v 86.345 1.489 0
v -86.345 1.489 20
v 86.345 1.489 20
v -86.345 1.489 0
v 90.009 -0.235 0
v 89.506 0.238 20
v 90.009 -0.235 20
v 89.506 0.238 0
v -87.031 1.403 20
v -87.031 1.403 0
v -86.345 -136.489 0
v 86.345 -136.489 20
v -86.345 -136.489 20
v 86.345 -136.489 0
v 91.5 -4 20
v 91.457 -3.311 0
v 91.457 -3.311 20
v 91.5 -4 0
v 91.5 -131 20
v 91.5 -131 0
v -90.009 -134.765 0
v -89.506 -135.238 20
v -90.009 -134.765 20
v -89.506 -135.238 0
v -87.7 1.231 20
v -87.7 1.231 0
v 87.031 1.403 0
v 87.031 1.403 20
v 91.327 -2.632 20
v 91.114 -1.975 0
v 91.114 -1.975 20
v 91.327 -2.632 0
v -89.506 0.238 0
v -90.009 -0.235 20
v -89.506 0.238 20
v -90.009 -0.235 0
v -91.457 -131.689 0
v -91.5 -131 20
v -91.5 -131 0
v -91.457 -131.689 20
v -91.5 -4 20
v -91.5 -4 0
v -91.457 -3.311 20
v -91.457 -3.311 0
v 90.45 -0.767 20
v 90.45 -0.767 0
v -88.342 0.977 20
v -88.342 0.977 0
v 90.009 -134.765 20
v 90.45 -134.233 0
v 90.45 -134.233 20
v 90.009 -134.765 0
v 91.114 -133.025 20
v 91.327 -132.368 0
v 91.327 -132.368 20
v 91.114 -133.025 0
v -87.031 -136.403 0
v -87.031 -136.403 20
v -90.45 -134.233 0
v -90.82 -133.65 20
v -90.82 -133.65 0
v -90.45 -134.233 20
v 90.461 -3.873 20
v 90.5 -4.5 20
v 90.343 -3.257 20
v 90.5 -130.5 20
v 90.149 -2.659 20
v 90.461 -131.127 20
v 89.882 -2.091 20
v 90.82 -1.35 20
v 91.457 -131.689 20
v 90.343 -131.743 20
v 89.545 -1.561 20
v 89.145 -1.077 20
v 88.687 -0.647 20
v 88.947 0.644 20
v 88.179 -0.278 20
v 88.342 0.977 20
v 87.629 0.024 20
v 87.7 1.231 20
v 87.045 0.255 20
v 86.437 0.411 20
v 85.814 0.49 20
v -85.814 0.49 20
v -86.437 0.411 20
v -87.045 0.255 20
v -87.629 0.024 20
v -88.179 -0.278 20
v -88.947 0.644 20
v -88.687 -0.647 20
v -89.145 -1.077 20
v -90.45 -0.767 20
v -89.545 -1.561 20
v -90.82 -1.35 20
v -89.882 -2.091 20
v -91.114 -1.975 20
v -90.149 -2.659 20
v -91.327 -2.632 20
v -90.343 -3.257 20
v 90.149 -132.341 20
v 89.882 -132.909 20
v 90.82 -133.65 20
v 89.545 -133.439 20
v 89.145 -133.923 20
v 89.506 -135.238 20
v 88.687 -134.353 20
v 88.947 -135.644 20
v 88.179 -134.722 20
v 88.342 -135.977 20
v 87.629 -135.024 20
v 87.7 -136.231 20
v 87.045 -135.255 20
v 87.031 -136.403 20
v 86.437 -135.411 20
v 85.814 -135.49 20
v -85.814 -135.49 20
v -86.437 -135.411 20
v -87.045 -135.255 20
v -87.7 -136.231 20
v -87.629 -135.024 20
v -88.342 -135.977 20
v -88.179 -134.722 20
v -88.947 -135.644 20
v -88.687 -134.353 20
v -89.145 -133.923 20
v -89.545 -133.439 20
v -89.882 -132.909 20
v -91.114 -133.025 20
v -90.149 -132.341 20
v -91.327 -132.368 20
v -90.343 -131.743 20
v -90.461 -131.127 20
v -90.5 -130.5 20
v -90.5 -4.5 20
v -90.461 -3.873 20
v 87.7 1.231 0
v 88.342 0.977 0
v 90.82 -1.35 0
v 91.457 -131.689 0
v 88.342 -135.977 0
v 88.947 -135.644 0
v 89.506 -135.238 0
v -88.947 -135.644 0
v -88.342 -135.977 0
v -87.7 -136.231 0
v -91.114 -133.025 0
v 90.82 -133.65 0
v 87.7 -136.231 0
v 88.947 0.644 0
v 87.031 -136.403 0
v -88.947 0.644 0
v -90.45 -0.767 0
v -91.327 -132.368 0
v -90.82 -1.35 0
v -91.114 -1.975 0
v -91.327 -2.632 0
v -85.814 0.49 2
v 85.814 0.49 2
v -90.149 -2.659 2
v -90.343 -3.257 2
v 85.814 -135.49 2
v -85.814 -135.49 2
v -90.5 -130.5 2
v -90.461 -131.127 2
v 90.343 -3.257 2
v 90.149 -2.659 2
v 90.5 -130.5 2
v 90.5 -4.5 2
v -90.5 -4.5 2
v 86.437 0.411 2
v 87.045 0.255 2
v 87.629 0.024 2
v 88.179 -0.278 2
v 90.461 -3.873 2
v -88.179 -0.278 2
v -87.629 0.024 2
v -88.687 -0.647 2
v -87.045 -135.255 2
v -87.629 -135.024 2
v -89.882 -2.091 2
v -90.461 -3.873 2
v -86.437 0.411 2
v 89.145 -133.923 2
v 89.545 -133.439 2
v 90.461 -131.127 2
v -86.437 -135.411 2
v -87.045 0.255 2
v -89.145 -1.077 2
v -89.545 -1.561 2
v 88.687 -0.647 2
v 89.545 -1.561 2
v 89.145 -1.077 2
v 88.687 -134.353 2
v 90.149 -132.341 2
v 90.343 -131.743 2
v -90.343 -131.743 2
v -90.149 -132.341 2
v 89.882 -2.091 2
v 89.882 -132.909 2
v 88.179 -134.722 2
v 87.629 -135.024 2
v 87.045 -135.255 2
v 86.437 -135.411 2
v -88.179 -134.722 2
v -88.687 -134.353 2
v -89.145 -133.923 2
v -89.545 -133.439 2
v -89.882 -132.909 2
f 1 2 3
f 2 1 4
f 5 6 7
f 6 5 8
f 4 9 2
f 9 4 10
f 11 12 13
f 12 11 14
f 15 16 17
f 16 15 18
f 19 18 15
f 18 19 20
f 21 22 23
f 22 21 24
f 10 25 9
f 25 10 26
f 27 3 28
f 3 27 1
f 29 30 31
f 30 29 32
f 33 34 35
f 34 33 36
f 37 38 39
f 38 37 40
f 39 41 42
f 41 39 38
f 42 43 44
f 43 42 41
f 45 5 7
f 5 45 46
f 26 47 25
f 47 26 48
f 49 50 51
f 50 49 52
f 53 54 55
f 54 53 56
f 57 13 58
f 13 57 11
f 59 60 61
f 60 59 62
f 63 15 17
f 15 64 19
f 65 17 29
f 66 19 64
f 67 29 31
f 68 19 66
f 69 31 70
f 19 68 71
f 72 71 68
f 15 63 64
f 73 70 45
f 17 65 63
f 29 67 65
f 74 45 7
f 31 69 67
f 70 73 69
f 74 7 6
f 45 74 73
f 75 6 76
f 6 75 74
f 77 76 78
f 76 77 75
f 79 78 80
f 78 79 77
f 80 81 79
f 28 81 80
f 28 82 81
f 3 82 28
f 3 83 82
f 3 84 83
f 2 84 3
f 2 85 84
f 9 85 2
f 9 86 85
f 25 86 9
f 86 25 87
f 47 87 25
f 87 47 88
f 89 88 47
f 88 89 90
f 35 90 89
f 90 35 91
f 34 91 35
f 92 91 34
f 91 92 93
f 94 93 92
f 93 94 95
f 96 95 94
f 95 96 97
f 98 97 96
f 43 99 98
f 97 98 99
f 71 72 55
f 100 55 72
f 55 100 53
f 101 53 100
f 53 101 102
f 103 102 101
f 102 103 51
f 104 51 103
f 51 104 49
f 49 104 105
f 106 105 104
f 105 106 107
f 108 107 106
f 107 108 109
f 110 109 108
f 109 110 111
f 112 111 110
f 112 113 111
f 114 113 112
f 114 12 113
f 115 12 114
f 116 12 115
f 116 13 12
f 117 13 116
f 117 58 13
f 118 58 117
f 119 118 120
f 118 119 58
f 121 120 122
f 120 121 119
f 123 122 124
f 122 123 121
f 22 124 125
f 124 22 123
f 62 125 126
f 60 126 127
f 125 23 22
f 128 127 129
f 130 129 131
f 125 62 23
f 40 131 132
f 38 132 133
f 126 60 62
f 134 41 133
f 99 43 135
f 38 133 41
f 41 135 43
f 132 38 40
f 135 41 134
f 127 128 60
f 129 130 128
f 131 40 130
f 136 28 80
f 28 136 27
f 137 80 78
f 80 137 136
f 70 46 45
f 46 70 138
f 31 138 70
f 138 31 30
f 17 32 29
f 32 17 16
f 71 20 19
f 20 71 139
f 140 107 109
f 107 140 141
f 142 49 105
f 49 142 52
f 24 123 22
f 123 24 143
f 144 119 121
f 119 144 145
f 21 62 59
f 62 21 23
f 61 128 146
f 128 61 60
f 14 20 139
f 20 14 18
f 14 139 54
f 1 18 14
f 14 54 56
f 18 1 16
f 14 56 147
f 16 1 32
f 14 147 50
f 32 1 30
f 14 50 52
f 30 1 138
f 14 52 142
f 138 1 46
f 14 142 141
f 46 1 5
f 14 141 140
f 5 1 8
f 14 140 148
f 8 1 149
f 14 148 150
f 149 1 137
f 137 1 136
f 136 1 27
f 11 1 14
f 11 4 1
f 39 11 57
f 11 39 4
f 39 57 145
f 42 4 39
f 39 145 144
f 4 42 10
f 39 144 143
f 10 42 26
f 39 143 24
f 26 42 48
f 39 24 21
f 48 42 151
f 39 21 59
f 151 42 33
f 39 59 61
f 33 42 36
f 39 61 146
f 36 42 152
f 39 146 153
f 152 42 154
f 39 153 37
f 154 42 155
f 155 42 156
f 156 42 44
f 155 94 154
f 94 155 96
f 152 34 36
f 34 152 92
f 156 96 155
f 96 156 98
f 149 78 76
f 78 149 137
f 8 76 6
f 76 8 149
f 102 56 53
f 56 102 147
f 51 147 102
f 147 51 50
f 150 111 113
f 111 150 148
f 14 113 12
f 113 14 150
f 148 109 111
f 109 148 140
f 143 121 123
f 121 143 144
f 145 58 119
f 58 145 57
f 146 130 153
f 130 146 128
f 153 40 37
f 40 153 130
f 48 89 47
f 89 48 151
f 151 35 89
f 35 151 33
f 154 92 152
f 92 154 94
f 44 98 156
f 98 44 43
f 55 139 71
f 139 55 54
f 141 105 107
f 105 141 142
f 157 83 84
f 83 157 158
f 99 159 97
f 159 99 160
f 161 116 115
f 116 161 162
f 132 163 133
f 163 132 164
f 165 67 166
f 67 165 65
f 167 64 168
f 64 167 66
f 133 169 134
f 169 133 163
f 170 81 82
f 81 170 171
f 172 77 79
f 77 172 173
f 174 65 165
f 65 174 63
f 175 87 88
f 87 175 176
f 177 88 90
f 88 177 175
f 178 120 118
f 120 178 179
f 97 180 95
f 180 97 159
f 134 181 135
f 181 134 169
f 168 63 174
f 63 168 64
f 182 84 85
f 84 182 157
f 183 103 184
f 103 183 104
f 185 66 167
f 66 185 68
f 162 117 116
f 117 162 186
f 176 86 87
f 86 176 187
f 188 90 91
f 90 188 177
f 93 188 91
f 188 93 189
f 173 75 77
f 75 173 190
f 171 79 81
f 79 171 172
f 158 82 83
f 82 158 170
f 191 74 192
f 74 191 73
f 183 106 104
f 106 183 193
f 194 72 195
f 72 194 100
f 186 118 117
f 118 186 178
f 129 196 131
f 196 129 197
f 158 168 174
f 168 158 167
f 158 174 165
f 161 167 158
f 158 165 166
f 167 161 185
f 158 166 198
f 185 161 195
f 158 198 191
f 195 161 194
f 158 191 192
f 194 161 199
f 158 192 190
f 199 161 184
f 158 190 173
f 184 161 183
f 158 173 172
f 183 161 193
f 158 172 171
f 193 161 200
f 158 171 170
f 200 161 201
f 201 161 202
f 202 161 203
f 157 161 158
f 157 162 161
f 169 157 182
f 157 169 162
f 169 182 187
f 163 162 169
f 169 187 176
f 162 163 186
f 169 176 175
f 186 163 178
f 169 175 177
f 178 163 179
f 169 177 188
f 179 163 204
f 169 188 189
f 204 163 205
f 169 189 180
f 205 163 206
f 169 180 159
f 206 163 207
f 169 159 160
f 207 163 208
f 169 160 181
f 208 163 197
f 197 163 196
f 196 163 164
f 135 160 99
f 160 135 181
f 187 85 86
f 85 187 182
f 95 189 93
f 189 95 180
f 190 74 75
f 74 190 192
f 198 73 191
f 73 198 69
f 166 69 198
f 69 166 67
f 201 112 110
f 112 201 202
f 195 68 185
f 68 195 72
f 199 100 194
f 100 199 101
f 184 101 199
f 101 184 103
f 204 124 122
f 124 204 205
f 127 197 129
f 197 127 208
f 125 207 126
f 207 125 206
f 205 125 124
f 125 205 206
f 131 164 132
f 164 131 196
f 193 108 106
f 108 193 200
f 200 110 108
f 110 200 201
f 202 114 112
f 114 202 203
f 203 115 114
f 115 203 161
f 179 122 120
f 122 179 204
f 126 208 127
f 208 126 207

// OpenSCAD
$fn = 50;


difference() {
	union() {
		translate(v = [0, -67.5000000000, 0]) {
			hull() {
				translate(v = [-86.0000000000, 63.5000000000, 0]) {
					cylinder(h = 20, r = 5.5000000000);
				}
				translate(v = [86.0000000000, 63.5000000000, 0]) {
					cylinder(h = 20, r = 5.5000000000);
				}
				translate(v = [-86.0000000000, -63.5000000000, 0]) {
					cylinder(h = 20, r = 5.5000000000);
				}
				translate(v = [86.0000000000, -63.5000000000, 0]) {
					cylinder(h = 20, r = 5.5000000000);
				}
			}
		}
	}
	union() {
		translate(v = [0, -67.5000000000, 2]) {
			hull() {
				translate(v = [-85.5000000000, 63.0000000000, 0]) {
					cylinder(h = 40, r = 5);
				}
				translate(v = [85.5000000000, 63.0000000000, 0]) {
					cylinder(h = 40, r = 5);
				}
				translate(v = [-85.5000000000, -63.0000000000, 0]) {
					cylinder(h = 40, r = 5);
				}
				translate(v = [85.5000000000, -63.0000000000, 0]) {
					cylinder(h = 40, r = 5);
				}
			}
		}
	}
}
